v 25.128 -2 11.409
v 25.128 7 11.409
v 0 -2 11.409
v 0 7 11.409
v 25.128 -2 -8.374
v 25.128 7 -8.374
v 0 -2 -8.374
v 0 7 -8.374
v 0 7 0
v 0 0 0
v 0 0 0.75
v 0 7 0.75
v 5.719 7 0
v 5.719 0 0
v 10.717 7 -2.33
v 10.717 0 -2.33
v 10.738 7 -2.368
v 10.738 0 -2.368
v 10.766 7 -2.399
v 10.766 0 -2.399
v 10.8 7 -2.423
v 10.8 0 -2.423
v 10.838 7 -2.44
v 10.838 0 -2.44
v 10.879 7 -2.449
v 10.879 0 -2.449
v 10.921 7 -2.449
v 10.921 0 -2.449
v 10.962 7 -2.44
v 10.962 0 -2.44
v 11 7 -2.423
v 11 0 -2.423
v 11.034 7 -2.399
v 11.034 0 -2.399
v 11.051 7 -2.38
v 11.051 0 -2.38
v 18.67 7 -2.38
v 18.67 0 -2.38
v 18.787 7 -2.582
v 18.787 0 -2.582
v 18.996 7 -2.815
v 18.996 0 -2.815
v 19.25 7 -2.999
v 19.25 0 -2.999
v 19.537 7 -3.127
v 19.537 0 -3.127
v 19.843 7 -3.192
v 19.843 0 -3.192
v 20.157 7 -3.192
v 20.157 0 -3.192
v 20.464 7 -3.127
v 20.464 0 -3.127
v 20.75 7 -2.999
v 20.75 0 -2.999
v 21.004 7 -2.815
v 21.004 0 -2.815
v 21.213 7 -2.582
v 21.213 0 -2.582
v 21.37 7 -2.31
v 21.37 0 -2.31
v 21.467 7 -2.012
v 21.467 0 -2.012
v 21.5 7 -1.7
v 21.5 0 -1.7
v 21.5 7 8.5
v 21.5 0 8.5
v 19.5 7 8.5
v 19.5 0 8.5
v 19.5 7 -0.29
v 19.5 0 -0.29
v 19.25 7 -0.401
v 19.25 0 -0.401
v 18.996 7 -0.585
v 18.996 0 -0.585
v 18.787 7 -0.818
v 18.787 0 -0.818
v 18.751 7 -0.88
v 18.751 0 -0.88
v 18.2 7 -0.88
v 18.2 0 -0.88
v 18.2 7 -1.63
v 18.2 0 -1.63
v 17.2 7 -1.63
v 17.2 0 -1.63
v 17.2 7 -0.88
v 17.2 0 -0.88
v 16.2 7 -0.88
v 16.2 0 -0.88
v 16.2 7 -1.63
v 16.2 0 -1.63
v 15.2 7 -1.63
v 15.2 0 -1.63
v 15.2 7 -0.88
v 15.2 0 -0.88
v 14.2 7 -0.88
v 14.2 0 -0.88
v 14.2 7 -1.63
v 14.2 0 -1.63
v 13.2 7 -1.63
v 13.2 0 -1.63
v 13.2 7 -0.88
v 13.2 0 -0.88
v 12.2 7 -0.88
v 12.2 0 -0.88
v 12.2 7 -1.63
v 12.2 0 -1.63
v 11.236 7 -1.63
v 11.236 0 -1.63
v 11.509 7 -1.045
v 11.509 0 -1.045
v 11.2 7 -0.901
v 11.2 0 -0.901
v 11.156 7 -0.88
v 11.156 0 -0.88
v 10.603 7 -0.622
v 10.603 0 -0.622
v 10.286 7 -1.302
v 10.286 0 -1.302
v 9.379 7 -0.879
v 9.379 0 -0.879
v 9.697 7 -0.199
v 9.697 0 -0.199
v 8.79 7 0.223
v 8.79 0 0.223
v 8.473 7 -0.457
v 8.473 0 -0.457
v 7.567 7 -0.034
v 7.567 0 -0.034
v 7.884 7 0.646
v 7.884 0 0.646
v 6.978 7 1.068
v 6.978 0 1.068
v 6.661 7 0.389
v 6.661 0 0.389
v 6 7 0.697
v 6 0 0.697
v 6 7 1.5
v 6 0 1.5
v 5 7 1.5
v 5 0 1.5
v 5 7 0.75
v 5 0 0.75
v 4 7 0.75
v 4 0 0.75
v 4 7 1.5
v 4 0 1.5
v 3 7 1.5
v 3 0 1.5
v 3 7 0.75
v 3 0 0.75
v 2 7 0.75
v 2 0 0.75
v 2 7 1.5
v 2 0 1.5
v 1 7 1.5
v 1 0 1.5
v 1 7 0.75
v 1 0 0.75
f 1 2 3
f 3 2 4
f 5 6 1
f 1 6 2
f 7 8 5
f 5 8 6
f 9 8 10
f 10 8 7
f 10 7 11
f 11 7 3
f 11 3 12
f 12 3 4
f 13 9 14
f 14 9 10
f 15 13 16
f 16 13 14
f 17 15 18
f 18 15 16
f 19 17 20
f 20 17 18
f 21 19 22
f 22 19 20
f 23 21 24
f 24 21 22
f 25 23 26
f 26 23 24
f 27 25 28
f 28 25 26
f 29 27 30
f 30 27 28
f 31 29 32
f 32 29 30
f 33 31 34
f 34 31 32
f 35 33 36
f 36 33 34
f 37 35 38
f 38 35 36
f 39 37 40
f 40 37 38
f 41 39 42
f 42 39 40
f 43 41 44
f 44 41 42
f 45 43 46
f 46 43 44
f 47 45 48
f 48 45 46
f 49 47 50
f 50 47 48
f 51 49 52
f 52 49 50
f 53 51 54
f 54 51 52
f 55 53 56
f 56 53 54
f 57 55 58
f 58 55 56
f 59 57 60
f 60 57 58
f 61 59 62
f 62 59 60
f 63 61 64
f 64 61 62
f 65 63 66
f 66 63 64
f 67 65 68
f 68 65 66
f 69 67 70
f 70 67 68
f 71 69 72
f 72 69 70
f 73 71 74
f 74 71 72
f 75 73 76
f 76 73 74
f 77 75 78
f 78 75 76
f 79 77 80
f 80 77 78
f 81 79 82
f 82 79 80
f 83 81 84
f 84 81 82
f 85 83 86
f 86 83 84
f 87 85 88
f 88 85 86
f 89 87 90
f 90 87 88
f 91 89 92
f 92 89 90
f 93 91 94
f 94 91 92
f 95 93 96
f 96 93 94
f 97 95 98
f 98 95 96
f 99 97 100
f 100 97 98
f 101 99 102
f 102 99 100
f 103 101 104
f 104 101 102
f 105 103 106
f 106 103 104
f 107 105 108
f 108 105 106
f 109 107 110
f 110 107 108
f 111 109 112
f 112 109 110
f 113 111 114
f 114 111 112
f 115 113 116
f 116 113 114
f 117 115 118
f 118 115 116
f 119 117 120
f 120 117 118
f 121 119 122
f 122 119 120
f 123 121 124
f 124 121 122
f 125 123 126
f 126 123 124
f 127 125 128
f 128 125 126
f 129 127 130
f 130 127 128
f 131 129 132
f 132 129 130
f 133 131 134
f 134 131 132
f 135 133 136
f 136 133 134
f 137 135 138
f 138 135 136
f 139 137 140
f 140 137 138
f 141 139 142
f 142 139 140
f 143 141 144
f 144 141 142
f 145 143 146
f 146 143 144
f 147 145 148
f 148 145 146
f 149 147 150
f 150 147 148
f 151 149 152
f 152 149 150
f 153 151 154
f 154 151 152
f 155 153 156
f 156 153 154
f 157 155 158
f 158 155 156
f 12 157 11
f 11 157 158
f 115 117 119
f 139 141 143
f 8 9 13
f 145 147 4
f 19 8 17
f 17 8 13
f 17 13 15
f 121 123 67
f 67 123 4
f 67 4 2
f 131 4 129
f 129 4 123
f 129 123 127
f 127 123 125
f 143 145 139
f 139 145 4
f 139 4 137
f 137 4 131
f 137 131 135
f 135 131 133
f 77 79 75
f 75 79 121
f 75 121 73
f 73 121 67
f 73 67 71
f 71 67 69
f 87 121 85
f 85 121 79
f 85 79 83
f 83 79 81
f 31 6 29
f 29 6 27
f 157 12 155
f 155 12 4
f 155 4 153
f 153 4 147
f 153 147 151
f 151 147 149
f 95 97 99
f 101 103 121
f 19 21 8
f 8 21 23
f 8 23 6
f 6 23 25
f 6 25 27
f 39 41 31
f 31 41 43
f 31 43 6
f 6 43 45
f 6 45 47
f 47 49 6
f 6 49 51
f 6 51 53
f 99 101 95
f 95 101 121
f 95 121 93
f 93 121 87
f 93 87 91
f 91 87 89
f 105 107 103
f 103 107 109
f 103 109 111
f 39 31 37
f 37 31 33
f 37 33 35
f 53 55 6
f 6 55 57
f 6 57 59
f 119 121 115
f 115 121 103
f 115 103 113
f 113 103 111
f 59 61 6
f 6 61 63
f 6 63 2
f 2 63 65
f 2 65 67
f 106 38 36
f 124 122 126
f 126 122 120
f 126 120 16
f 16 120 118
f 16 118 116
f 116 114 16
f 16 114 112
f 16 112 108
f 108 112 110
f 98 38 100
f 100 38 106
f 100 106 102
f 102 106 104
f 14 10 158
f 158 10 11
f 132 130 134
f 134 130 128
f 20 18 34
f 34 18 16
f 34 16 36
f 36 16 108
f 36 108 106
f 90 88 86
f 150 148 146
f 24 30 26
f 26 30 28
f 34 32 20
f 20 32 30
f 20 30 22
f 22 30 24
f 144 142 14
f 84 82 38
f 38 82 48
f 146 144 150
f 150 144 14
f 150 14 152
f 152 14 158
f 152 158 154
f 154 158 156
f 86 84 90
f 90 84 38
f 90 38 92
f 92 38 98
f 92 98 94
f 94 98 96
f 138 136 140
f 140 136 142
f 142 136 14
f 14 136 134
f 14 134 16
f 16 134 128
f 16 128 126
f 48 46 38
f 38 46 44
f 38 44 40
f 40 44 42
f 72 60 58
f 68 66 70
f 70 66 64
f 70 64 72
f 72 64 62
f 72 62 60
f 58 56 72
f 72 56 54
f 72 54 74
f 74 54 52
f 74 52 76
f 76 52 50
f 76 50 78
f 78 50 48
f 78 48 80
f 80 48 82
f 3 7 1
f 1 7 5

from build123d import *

# Parameters (mm, degrees)
BOSS_EXTRUDE1_DEPTH = 7
SKETCH2_W           = 25.128147065
SKETCH2_H           = 19.783027292
BOSS_EXTRUDE2_DEPTH = 2


with BuildPart() as part:
    # Sketch1 → Boss-Extrude1 (new body)
    with BuildSketch(Plane(origin=(0, 0, 0), x_dir=(1, 0, 0), z_dir=(0, 1, 0))):
        Polygon((19.500000402, -8.500000462), (21.50000073, -8.500000462), (21.50000073, 1.499999315), (21.50000073, 1.699998975), (21.467199549, 2.011898905), (21.370301023, 2.31009908), (21.213499829, 2.58169882), (21.003700793, 2.814698964), (20.750001073, 2.998998389), (20.463500172, 3.126598895), (20.156800747, 3.191798925), (19.843200222, 3.191798925), (19.536500797, 3.126598895), (19.249999896, 2.998998389), (18.996300176, 2.814698964), (18.786501139, 2.58169882), (18.670000136, 2.379998565), (11.050600559, 2.379998565), (11.033799499, 2.398598939), (10.99999994, 2.423198894), (10.961800814, 2.440199256), (10.920900851, 2.448899671), (10.879099369, 2.448899671), (10.838199407, 2.440199256), (10.80000028, 2.423198894), (10.766200721, 2.398598939), (10.738201439, 2.367598936), (10.717000812, 2.33049877), (5.719300359, 0), (0, 0), (0, 8.374300694), (25.128147065, 8.374300694), (25.128147065, -11.408726598), (0, -11.408726598), (0, -0.75000152), (1.000002027, -0.75000152), (1.000002027, -1.500001177), (2.000000328, -1.500001177), (2.000000328, -0.75000152), (2.999998629, -0.75000152), (2.999998629, -1.500001177), (4.000000656, -1.500001177), (4.000000656, -0.75000152), (4.999998957, -0.75000152), (4.999998957, -1.500001177), (6.000000983, -1.500001177), (6.000000983, -0.696601346), (6.660599262, -0.388601795), (6.977502257, -1.068301499), (7.883802056, -0.645700842), (7.566899061, 0.033998862), (8.473198861, 0.456599519), (8.790101856, -0.223100185), (9.696502239, 0.199498609), (9.379498661, 0.879198313), (10.285802186, 1.301899552), (10.602802038, 0.622099265), (11.155799031, 0.87999925), (11.199999601, 0.900598243), (11.509099975, 1.044699922), (11.236201972, 1.629998907), (12.199999765, 1.629998907), (12.199999765, 0.87999925), (13.199999928, 0.87999925), (13.199999928, 1.629998907), (14.200000092, 1.629998907), (14.200000092, 0.87999925), (15.200000256, 0.87999925), (15.200000256, 1.629998907), (16.20000042, 1.629998907), (16.20000042, 0.87999925), (17.200000584, 0.87999925), (17.200000584, 1.629998907), (18.200000748, 1.629998907), (18.200000748, 0.87999925), (18.750900403, 0.87999925), (18.786501139, 0.81829913), (18.996300176, 0.585298985), (19.249999896, 0.400999561), (19.500000402, 0.289699063), align=None)
    extrude(amount=BOSS_EXTRUDE1_DEPTH)

    # Sketch2 → Boss-Extrude2 (add)
    with BuildSketch(Plane.XZ):
        with Locations((12.564073533, 1.517212952)):
            Rectangle(SKETCH2_W, SKETCH2_H)
    extrude(amount=BOSS_EXTRUDE2_DEPTH)


solid = part.part
